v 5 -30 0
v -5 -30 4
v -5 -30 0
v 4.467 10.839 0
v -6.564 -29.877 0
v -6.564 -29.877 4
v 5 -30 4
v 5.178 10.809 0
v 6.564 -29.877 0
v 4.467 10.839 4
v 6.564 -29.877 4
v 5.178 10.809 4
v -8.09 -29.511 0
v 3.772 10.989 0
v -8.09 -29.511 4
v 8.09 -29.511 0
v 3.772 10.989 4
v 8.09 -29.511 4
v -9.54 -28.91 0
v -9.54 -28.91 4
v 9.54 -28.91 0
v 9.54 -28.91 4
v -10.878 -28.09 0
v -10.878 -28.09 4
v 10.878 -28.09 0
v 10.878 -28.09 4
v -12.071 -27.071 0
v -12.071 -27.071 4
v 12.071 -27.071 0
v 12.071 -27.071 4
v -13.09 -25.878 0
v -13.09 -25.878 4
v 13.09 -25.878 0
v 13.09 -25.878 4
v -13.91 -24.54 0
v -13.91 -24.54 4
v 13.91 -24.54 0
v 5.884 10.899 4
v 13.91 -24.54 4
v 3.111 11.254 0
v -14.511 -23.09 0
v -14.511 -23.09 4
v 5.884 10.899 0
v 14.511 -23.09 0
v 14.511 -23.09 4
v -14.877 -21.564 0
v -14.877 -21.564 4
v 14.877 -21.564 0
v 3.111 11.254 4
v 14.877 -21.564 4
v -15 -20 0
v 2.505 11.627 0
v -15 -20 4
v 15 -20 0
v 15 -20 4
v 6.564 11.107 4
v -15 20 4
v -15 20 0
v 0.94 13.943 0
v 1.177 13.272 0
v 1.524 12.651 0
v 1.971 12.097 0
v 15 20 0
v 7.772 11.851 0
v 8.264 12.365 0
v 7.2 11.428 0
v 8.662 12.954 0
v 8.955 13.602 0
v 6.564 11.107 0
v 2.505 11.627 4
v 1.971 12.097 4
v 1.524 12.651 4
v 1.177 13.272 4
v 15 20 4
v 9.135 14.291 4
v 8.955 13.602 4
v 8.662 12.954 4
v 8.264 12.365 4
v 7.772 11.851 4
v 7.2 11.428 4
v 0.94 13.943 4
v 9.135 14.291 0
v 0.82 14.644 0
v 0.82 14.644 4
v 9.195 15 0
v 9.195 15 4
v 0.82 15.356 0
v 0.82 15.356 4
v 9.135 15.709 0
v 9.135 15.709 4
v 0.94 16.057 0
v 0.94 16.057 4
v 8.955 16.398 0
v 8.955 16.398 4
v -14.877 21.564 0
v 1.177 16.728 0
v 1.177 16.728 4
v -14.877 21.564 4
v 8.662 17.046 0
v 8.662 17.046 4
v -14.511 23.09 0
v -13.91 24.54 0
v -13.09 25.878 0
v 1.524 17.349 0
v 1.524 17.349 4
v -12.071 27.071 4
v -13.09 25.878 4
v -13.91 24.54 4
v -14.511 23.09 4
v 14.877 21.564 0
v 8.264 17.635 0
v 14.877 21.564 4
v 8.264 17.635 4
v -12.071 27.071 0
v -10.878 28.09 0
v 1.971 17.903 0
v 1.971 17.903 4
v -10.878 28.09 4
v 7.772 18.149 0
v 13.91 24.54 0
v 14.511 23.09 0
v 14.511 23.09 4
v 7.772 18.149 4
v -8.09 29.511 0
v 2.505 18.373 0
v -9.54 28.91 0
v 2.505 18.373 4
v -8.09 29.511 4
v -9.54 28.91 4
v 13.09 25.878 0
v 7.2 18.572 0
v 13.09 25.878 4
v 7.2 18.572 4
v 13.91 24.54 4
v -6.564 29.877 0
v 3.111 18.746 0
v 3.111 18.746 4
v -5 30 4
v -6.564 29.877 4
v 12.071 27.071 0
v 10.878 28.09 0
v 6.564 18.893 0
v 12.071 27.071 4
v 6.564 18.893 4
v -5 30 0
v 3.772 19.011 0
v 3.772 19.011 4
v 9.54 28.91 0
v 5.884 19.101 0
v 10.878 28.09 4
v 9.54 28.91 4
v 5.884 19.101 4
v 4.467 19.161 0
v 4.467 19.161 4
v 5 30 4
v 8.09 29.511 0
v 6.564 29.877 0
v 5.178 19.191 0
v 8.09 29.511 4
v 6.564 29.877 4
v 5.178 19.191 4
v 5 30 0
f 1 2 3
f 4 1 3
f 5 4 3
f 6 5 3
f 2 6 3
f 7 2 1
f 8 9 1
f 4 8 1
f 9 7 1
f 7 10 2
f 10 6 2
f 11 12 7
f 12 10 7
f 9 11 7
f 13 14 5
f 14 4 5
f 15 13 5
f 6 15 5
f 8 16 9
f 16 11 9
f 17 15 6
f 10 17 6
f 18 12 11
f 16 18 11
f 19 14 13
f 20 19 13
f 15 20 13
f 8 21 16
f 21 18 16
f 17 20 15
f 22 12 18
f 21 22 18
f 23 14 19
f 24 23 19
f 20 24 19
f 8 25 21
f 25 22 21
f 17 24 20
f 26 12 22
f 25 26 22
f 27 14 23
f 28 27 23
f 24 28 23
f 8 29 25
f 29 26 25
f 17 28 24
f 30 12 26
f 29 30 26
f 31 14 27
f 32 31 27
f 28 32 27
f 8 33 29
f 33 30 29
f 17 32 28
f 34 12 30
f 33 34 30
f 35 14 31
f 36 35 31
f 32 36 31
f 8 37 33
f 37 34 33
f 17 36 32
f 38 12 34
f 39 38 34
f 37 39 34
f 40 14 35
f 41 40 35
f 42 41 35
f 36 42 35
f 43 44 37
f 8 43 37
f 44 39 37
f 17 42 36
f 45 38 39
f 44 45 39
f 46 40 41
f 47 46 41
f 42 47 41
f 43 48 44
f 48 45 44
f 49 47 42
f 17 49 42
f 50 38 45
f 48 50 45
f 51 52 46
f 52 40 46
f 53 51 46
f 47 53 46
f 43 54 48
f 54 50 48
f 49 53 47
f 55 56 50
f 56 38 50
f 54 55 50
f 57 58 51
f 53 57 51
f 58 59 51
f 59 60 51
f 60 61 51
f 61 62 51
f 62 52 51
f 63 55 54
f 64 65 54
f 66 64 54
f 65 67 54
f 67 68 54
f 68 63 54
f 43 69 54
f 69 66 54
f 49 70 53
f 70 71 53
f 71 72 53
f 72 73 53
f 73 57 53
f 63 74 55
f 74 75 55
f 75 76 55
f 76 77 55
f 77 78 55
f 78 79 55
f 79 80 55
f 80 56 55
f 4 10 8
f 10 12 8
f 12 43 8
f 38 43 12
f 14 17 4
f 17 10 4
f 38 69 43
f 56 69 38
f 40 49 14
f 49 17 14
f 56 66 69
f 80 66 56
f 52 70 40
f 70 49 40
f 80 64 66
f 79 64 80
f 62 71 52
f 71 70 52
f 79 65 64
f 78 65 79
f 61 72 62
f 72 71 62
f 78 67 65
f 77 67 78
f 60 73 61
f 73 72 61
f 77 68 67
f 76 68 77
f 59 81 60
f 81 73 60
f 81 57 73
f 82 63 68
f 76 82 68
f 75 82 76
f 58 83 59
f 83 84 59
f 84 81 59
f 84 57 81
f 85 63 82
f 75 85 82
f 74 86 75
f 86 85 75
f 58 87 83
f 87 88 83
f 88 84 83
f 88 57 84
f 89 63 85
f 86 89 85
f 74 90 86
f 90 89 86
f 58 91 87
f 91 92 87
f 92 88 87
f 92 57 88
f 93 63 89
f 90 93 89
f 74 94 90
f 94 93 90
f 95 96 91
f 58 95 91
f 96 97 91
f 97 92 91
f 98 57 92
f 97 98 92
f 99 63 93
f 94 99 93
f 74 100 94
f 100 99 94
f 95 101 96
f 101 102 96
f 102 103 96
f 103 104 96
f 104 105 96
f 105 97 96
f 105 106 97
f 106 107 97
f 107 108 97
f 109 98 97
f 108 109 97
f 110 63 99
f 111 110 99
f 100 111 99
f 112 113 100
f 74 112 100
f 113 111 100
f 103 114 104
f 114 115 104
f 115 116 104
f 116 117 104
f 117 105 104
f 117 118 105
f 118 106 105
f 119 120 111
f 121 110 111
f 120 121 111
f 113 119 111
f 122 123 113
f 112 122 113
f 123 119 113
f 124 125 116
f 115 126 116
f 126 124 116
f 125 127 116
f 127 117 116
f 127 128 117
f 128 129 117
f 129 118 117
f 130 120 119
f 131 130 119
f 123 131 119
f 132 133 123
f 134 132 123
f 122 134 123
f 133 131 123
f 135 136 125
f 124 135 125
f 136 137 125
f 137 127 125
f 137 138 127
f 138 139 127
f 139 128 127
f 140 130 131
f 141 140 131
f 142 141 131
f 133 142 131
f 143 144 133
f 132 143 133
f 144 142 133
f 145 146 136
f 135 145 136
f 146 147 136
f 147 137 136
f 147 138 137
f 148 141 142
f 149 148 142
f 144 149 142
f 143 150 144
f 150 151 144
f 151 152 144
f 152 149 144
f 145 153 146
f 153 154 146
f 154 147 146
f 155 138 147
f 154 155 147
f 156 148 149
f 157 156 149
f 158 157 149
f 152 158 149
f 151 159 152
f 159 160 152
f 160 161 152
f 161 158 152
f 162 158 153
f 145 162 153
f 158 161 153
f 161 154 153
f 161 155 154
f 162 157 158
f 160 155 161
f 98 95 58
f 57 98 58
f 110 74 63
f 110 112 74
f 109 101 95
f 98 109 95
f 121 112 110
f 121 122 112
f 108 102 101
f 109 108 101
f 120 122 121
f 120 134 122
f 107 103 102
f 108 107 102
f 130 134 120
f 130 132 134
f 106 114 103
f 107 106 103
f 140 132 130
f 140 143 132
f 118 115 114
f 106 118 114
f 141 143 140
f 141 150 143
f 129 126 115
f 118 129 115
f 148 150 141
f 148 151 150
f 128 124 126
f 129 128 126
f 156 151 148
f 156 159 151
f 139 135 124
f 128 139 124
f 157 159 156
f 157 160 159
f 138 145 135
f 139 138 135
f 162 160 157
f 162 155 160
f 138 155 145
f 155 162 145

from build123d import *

# Parameters (mm, degrees)
SKETCH_2_W          = 30
SKETCH_2_H          = 60
EXTRUDE_1_DEPTH     = 4
SKETCH_3_R          = 4.195093659
CUT_EXTRUDE_1_DEPTH = 34.778691508
FILLET_1_R          = 10


with BuildPart() as part:
    # 草圖2 → 填料-伸長1 (new body)
    with BuildSketch(Plane.XY):
        Rectangle(SKETCH_2_W, SKETCH_2_H)
    extrude(amount=EXTRUDE_1_DEPTH)

    # 草圖3 → 除料-伸長1 (cut, through all)
    with BuildSketch(Plane.XY.offset(4)):
        with Locations((5, 15)):
            Circle(SKETCH_3_R)
    extrude(amount=-CUT_EXTRUDE_1_DEPTH, mode=Mode.SUBTRACT)

    # 圓角1
    fillet_1_edges = [part.edges().sort_by_distance(p)[0] for p in [
        (-15, 30, 2),
        (15, 30, 2),
        (15, -30, 2),
        (-15, -30, 2),
    ]]
    fillet(fillet_1_edges, radius=FILLET_1_R)


solid = part.part
